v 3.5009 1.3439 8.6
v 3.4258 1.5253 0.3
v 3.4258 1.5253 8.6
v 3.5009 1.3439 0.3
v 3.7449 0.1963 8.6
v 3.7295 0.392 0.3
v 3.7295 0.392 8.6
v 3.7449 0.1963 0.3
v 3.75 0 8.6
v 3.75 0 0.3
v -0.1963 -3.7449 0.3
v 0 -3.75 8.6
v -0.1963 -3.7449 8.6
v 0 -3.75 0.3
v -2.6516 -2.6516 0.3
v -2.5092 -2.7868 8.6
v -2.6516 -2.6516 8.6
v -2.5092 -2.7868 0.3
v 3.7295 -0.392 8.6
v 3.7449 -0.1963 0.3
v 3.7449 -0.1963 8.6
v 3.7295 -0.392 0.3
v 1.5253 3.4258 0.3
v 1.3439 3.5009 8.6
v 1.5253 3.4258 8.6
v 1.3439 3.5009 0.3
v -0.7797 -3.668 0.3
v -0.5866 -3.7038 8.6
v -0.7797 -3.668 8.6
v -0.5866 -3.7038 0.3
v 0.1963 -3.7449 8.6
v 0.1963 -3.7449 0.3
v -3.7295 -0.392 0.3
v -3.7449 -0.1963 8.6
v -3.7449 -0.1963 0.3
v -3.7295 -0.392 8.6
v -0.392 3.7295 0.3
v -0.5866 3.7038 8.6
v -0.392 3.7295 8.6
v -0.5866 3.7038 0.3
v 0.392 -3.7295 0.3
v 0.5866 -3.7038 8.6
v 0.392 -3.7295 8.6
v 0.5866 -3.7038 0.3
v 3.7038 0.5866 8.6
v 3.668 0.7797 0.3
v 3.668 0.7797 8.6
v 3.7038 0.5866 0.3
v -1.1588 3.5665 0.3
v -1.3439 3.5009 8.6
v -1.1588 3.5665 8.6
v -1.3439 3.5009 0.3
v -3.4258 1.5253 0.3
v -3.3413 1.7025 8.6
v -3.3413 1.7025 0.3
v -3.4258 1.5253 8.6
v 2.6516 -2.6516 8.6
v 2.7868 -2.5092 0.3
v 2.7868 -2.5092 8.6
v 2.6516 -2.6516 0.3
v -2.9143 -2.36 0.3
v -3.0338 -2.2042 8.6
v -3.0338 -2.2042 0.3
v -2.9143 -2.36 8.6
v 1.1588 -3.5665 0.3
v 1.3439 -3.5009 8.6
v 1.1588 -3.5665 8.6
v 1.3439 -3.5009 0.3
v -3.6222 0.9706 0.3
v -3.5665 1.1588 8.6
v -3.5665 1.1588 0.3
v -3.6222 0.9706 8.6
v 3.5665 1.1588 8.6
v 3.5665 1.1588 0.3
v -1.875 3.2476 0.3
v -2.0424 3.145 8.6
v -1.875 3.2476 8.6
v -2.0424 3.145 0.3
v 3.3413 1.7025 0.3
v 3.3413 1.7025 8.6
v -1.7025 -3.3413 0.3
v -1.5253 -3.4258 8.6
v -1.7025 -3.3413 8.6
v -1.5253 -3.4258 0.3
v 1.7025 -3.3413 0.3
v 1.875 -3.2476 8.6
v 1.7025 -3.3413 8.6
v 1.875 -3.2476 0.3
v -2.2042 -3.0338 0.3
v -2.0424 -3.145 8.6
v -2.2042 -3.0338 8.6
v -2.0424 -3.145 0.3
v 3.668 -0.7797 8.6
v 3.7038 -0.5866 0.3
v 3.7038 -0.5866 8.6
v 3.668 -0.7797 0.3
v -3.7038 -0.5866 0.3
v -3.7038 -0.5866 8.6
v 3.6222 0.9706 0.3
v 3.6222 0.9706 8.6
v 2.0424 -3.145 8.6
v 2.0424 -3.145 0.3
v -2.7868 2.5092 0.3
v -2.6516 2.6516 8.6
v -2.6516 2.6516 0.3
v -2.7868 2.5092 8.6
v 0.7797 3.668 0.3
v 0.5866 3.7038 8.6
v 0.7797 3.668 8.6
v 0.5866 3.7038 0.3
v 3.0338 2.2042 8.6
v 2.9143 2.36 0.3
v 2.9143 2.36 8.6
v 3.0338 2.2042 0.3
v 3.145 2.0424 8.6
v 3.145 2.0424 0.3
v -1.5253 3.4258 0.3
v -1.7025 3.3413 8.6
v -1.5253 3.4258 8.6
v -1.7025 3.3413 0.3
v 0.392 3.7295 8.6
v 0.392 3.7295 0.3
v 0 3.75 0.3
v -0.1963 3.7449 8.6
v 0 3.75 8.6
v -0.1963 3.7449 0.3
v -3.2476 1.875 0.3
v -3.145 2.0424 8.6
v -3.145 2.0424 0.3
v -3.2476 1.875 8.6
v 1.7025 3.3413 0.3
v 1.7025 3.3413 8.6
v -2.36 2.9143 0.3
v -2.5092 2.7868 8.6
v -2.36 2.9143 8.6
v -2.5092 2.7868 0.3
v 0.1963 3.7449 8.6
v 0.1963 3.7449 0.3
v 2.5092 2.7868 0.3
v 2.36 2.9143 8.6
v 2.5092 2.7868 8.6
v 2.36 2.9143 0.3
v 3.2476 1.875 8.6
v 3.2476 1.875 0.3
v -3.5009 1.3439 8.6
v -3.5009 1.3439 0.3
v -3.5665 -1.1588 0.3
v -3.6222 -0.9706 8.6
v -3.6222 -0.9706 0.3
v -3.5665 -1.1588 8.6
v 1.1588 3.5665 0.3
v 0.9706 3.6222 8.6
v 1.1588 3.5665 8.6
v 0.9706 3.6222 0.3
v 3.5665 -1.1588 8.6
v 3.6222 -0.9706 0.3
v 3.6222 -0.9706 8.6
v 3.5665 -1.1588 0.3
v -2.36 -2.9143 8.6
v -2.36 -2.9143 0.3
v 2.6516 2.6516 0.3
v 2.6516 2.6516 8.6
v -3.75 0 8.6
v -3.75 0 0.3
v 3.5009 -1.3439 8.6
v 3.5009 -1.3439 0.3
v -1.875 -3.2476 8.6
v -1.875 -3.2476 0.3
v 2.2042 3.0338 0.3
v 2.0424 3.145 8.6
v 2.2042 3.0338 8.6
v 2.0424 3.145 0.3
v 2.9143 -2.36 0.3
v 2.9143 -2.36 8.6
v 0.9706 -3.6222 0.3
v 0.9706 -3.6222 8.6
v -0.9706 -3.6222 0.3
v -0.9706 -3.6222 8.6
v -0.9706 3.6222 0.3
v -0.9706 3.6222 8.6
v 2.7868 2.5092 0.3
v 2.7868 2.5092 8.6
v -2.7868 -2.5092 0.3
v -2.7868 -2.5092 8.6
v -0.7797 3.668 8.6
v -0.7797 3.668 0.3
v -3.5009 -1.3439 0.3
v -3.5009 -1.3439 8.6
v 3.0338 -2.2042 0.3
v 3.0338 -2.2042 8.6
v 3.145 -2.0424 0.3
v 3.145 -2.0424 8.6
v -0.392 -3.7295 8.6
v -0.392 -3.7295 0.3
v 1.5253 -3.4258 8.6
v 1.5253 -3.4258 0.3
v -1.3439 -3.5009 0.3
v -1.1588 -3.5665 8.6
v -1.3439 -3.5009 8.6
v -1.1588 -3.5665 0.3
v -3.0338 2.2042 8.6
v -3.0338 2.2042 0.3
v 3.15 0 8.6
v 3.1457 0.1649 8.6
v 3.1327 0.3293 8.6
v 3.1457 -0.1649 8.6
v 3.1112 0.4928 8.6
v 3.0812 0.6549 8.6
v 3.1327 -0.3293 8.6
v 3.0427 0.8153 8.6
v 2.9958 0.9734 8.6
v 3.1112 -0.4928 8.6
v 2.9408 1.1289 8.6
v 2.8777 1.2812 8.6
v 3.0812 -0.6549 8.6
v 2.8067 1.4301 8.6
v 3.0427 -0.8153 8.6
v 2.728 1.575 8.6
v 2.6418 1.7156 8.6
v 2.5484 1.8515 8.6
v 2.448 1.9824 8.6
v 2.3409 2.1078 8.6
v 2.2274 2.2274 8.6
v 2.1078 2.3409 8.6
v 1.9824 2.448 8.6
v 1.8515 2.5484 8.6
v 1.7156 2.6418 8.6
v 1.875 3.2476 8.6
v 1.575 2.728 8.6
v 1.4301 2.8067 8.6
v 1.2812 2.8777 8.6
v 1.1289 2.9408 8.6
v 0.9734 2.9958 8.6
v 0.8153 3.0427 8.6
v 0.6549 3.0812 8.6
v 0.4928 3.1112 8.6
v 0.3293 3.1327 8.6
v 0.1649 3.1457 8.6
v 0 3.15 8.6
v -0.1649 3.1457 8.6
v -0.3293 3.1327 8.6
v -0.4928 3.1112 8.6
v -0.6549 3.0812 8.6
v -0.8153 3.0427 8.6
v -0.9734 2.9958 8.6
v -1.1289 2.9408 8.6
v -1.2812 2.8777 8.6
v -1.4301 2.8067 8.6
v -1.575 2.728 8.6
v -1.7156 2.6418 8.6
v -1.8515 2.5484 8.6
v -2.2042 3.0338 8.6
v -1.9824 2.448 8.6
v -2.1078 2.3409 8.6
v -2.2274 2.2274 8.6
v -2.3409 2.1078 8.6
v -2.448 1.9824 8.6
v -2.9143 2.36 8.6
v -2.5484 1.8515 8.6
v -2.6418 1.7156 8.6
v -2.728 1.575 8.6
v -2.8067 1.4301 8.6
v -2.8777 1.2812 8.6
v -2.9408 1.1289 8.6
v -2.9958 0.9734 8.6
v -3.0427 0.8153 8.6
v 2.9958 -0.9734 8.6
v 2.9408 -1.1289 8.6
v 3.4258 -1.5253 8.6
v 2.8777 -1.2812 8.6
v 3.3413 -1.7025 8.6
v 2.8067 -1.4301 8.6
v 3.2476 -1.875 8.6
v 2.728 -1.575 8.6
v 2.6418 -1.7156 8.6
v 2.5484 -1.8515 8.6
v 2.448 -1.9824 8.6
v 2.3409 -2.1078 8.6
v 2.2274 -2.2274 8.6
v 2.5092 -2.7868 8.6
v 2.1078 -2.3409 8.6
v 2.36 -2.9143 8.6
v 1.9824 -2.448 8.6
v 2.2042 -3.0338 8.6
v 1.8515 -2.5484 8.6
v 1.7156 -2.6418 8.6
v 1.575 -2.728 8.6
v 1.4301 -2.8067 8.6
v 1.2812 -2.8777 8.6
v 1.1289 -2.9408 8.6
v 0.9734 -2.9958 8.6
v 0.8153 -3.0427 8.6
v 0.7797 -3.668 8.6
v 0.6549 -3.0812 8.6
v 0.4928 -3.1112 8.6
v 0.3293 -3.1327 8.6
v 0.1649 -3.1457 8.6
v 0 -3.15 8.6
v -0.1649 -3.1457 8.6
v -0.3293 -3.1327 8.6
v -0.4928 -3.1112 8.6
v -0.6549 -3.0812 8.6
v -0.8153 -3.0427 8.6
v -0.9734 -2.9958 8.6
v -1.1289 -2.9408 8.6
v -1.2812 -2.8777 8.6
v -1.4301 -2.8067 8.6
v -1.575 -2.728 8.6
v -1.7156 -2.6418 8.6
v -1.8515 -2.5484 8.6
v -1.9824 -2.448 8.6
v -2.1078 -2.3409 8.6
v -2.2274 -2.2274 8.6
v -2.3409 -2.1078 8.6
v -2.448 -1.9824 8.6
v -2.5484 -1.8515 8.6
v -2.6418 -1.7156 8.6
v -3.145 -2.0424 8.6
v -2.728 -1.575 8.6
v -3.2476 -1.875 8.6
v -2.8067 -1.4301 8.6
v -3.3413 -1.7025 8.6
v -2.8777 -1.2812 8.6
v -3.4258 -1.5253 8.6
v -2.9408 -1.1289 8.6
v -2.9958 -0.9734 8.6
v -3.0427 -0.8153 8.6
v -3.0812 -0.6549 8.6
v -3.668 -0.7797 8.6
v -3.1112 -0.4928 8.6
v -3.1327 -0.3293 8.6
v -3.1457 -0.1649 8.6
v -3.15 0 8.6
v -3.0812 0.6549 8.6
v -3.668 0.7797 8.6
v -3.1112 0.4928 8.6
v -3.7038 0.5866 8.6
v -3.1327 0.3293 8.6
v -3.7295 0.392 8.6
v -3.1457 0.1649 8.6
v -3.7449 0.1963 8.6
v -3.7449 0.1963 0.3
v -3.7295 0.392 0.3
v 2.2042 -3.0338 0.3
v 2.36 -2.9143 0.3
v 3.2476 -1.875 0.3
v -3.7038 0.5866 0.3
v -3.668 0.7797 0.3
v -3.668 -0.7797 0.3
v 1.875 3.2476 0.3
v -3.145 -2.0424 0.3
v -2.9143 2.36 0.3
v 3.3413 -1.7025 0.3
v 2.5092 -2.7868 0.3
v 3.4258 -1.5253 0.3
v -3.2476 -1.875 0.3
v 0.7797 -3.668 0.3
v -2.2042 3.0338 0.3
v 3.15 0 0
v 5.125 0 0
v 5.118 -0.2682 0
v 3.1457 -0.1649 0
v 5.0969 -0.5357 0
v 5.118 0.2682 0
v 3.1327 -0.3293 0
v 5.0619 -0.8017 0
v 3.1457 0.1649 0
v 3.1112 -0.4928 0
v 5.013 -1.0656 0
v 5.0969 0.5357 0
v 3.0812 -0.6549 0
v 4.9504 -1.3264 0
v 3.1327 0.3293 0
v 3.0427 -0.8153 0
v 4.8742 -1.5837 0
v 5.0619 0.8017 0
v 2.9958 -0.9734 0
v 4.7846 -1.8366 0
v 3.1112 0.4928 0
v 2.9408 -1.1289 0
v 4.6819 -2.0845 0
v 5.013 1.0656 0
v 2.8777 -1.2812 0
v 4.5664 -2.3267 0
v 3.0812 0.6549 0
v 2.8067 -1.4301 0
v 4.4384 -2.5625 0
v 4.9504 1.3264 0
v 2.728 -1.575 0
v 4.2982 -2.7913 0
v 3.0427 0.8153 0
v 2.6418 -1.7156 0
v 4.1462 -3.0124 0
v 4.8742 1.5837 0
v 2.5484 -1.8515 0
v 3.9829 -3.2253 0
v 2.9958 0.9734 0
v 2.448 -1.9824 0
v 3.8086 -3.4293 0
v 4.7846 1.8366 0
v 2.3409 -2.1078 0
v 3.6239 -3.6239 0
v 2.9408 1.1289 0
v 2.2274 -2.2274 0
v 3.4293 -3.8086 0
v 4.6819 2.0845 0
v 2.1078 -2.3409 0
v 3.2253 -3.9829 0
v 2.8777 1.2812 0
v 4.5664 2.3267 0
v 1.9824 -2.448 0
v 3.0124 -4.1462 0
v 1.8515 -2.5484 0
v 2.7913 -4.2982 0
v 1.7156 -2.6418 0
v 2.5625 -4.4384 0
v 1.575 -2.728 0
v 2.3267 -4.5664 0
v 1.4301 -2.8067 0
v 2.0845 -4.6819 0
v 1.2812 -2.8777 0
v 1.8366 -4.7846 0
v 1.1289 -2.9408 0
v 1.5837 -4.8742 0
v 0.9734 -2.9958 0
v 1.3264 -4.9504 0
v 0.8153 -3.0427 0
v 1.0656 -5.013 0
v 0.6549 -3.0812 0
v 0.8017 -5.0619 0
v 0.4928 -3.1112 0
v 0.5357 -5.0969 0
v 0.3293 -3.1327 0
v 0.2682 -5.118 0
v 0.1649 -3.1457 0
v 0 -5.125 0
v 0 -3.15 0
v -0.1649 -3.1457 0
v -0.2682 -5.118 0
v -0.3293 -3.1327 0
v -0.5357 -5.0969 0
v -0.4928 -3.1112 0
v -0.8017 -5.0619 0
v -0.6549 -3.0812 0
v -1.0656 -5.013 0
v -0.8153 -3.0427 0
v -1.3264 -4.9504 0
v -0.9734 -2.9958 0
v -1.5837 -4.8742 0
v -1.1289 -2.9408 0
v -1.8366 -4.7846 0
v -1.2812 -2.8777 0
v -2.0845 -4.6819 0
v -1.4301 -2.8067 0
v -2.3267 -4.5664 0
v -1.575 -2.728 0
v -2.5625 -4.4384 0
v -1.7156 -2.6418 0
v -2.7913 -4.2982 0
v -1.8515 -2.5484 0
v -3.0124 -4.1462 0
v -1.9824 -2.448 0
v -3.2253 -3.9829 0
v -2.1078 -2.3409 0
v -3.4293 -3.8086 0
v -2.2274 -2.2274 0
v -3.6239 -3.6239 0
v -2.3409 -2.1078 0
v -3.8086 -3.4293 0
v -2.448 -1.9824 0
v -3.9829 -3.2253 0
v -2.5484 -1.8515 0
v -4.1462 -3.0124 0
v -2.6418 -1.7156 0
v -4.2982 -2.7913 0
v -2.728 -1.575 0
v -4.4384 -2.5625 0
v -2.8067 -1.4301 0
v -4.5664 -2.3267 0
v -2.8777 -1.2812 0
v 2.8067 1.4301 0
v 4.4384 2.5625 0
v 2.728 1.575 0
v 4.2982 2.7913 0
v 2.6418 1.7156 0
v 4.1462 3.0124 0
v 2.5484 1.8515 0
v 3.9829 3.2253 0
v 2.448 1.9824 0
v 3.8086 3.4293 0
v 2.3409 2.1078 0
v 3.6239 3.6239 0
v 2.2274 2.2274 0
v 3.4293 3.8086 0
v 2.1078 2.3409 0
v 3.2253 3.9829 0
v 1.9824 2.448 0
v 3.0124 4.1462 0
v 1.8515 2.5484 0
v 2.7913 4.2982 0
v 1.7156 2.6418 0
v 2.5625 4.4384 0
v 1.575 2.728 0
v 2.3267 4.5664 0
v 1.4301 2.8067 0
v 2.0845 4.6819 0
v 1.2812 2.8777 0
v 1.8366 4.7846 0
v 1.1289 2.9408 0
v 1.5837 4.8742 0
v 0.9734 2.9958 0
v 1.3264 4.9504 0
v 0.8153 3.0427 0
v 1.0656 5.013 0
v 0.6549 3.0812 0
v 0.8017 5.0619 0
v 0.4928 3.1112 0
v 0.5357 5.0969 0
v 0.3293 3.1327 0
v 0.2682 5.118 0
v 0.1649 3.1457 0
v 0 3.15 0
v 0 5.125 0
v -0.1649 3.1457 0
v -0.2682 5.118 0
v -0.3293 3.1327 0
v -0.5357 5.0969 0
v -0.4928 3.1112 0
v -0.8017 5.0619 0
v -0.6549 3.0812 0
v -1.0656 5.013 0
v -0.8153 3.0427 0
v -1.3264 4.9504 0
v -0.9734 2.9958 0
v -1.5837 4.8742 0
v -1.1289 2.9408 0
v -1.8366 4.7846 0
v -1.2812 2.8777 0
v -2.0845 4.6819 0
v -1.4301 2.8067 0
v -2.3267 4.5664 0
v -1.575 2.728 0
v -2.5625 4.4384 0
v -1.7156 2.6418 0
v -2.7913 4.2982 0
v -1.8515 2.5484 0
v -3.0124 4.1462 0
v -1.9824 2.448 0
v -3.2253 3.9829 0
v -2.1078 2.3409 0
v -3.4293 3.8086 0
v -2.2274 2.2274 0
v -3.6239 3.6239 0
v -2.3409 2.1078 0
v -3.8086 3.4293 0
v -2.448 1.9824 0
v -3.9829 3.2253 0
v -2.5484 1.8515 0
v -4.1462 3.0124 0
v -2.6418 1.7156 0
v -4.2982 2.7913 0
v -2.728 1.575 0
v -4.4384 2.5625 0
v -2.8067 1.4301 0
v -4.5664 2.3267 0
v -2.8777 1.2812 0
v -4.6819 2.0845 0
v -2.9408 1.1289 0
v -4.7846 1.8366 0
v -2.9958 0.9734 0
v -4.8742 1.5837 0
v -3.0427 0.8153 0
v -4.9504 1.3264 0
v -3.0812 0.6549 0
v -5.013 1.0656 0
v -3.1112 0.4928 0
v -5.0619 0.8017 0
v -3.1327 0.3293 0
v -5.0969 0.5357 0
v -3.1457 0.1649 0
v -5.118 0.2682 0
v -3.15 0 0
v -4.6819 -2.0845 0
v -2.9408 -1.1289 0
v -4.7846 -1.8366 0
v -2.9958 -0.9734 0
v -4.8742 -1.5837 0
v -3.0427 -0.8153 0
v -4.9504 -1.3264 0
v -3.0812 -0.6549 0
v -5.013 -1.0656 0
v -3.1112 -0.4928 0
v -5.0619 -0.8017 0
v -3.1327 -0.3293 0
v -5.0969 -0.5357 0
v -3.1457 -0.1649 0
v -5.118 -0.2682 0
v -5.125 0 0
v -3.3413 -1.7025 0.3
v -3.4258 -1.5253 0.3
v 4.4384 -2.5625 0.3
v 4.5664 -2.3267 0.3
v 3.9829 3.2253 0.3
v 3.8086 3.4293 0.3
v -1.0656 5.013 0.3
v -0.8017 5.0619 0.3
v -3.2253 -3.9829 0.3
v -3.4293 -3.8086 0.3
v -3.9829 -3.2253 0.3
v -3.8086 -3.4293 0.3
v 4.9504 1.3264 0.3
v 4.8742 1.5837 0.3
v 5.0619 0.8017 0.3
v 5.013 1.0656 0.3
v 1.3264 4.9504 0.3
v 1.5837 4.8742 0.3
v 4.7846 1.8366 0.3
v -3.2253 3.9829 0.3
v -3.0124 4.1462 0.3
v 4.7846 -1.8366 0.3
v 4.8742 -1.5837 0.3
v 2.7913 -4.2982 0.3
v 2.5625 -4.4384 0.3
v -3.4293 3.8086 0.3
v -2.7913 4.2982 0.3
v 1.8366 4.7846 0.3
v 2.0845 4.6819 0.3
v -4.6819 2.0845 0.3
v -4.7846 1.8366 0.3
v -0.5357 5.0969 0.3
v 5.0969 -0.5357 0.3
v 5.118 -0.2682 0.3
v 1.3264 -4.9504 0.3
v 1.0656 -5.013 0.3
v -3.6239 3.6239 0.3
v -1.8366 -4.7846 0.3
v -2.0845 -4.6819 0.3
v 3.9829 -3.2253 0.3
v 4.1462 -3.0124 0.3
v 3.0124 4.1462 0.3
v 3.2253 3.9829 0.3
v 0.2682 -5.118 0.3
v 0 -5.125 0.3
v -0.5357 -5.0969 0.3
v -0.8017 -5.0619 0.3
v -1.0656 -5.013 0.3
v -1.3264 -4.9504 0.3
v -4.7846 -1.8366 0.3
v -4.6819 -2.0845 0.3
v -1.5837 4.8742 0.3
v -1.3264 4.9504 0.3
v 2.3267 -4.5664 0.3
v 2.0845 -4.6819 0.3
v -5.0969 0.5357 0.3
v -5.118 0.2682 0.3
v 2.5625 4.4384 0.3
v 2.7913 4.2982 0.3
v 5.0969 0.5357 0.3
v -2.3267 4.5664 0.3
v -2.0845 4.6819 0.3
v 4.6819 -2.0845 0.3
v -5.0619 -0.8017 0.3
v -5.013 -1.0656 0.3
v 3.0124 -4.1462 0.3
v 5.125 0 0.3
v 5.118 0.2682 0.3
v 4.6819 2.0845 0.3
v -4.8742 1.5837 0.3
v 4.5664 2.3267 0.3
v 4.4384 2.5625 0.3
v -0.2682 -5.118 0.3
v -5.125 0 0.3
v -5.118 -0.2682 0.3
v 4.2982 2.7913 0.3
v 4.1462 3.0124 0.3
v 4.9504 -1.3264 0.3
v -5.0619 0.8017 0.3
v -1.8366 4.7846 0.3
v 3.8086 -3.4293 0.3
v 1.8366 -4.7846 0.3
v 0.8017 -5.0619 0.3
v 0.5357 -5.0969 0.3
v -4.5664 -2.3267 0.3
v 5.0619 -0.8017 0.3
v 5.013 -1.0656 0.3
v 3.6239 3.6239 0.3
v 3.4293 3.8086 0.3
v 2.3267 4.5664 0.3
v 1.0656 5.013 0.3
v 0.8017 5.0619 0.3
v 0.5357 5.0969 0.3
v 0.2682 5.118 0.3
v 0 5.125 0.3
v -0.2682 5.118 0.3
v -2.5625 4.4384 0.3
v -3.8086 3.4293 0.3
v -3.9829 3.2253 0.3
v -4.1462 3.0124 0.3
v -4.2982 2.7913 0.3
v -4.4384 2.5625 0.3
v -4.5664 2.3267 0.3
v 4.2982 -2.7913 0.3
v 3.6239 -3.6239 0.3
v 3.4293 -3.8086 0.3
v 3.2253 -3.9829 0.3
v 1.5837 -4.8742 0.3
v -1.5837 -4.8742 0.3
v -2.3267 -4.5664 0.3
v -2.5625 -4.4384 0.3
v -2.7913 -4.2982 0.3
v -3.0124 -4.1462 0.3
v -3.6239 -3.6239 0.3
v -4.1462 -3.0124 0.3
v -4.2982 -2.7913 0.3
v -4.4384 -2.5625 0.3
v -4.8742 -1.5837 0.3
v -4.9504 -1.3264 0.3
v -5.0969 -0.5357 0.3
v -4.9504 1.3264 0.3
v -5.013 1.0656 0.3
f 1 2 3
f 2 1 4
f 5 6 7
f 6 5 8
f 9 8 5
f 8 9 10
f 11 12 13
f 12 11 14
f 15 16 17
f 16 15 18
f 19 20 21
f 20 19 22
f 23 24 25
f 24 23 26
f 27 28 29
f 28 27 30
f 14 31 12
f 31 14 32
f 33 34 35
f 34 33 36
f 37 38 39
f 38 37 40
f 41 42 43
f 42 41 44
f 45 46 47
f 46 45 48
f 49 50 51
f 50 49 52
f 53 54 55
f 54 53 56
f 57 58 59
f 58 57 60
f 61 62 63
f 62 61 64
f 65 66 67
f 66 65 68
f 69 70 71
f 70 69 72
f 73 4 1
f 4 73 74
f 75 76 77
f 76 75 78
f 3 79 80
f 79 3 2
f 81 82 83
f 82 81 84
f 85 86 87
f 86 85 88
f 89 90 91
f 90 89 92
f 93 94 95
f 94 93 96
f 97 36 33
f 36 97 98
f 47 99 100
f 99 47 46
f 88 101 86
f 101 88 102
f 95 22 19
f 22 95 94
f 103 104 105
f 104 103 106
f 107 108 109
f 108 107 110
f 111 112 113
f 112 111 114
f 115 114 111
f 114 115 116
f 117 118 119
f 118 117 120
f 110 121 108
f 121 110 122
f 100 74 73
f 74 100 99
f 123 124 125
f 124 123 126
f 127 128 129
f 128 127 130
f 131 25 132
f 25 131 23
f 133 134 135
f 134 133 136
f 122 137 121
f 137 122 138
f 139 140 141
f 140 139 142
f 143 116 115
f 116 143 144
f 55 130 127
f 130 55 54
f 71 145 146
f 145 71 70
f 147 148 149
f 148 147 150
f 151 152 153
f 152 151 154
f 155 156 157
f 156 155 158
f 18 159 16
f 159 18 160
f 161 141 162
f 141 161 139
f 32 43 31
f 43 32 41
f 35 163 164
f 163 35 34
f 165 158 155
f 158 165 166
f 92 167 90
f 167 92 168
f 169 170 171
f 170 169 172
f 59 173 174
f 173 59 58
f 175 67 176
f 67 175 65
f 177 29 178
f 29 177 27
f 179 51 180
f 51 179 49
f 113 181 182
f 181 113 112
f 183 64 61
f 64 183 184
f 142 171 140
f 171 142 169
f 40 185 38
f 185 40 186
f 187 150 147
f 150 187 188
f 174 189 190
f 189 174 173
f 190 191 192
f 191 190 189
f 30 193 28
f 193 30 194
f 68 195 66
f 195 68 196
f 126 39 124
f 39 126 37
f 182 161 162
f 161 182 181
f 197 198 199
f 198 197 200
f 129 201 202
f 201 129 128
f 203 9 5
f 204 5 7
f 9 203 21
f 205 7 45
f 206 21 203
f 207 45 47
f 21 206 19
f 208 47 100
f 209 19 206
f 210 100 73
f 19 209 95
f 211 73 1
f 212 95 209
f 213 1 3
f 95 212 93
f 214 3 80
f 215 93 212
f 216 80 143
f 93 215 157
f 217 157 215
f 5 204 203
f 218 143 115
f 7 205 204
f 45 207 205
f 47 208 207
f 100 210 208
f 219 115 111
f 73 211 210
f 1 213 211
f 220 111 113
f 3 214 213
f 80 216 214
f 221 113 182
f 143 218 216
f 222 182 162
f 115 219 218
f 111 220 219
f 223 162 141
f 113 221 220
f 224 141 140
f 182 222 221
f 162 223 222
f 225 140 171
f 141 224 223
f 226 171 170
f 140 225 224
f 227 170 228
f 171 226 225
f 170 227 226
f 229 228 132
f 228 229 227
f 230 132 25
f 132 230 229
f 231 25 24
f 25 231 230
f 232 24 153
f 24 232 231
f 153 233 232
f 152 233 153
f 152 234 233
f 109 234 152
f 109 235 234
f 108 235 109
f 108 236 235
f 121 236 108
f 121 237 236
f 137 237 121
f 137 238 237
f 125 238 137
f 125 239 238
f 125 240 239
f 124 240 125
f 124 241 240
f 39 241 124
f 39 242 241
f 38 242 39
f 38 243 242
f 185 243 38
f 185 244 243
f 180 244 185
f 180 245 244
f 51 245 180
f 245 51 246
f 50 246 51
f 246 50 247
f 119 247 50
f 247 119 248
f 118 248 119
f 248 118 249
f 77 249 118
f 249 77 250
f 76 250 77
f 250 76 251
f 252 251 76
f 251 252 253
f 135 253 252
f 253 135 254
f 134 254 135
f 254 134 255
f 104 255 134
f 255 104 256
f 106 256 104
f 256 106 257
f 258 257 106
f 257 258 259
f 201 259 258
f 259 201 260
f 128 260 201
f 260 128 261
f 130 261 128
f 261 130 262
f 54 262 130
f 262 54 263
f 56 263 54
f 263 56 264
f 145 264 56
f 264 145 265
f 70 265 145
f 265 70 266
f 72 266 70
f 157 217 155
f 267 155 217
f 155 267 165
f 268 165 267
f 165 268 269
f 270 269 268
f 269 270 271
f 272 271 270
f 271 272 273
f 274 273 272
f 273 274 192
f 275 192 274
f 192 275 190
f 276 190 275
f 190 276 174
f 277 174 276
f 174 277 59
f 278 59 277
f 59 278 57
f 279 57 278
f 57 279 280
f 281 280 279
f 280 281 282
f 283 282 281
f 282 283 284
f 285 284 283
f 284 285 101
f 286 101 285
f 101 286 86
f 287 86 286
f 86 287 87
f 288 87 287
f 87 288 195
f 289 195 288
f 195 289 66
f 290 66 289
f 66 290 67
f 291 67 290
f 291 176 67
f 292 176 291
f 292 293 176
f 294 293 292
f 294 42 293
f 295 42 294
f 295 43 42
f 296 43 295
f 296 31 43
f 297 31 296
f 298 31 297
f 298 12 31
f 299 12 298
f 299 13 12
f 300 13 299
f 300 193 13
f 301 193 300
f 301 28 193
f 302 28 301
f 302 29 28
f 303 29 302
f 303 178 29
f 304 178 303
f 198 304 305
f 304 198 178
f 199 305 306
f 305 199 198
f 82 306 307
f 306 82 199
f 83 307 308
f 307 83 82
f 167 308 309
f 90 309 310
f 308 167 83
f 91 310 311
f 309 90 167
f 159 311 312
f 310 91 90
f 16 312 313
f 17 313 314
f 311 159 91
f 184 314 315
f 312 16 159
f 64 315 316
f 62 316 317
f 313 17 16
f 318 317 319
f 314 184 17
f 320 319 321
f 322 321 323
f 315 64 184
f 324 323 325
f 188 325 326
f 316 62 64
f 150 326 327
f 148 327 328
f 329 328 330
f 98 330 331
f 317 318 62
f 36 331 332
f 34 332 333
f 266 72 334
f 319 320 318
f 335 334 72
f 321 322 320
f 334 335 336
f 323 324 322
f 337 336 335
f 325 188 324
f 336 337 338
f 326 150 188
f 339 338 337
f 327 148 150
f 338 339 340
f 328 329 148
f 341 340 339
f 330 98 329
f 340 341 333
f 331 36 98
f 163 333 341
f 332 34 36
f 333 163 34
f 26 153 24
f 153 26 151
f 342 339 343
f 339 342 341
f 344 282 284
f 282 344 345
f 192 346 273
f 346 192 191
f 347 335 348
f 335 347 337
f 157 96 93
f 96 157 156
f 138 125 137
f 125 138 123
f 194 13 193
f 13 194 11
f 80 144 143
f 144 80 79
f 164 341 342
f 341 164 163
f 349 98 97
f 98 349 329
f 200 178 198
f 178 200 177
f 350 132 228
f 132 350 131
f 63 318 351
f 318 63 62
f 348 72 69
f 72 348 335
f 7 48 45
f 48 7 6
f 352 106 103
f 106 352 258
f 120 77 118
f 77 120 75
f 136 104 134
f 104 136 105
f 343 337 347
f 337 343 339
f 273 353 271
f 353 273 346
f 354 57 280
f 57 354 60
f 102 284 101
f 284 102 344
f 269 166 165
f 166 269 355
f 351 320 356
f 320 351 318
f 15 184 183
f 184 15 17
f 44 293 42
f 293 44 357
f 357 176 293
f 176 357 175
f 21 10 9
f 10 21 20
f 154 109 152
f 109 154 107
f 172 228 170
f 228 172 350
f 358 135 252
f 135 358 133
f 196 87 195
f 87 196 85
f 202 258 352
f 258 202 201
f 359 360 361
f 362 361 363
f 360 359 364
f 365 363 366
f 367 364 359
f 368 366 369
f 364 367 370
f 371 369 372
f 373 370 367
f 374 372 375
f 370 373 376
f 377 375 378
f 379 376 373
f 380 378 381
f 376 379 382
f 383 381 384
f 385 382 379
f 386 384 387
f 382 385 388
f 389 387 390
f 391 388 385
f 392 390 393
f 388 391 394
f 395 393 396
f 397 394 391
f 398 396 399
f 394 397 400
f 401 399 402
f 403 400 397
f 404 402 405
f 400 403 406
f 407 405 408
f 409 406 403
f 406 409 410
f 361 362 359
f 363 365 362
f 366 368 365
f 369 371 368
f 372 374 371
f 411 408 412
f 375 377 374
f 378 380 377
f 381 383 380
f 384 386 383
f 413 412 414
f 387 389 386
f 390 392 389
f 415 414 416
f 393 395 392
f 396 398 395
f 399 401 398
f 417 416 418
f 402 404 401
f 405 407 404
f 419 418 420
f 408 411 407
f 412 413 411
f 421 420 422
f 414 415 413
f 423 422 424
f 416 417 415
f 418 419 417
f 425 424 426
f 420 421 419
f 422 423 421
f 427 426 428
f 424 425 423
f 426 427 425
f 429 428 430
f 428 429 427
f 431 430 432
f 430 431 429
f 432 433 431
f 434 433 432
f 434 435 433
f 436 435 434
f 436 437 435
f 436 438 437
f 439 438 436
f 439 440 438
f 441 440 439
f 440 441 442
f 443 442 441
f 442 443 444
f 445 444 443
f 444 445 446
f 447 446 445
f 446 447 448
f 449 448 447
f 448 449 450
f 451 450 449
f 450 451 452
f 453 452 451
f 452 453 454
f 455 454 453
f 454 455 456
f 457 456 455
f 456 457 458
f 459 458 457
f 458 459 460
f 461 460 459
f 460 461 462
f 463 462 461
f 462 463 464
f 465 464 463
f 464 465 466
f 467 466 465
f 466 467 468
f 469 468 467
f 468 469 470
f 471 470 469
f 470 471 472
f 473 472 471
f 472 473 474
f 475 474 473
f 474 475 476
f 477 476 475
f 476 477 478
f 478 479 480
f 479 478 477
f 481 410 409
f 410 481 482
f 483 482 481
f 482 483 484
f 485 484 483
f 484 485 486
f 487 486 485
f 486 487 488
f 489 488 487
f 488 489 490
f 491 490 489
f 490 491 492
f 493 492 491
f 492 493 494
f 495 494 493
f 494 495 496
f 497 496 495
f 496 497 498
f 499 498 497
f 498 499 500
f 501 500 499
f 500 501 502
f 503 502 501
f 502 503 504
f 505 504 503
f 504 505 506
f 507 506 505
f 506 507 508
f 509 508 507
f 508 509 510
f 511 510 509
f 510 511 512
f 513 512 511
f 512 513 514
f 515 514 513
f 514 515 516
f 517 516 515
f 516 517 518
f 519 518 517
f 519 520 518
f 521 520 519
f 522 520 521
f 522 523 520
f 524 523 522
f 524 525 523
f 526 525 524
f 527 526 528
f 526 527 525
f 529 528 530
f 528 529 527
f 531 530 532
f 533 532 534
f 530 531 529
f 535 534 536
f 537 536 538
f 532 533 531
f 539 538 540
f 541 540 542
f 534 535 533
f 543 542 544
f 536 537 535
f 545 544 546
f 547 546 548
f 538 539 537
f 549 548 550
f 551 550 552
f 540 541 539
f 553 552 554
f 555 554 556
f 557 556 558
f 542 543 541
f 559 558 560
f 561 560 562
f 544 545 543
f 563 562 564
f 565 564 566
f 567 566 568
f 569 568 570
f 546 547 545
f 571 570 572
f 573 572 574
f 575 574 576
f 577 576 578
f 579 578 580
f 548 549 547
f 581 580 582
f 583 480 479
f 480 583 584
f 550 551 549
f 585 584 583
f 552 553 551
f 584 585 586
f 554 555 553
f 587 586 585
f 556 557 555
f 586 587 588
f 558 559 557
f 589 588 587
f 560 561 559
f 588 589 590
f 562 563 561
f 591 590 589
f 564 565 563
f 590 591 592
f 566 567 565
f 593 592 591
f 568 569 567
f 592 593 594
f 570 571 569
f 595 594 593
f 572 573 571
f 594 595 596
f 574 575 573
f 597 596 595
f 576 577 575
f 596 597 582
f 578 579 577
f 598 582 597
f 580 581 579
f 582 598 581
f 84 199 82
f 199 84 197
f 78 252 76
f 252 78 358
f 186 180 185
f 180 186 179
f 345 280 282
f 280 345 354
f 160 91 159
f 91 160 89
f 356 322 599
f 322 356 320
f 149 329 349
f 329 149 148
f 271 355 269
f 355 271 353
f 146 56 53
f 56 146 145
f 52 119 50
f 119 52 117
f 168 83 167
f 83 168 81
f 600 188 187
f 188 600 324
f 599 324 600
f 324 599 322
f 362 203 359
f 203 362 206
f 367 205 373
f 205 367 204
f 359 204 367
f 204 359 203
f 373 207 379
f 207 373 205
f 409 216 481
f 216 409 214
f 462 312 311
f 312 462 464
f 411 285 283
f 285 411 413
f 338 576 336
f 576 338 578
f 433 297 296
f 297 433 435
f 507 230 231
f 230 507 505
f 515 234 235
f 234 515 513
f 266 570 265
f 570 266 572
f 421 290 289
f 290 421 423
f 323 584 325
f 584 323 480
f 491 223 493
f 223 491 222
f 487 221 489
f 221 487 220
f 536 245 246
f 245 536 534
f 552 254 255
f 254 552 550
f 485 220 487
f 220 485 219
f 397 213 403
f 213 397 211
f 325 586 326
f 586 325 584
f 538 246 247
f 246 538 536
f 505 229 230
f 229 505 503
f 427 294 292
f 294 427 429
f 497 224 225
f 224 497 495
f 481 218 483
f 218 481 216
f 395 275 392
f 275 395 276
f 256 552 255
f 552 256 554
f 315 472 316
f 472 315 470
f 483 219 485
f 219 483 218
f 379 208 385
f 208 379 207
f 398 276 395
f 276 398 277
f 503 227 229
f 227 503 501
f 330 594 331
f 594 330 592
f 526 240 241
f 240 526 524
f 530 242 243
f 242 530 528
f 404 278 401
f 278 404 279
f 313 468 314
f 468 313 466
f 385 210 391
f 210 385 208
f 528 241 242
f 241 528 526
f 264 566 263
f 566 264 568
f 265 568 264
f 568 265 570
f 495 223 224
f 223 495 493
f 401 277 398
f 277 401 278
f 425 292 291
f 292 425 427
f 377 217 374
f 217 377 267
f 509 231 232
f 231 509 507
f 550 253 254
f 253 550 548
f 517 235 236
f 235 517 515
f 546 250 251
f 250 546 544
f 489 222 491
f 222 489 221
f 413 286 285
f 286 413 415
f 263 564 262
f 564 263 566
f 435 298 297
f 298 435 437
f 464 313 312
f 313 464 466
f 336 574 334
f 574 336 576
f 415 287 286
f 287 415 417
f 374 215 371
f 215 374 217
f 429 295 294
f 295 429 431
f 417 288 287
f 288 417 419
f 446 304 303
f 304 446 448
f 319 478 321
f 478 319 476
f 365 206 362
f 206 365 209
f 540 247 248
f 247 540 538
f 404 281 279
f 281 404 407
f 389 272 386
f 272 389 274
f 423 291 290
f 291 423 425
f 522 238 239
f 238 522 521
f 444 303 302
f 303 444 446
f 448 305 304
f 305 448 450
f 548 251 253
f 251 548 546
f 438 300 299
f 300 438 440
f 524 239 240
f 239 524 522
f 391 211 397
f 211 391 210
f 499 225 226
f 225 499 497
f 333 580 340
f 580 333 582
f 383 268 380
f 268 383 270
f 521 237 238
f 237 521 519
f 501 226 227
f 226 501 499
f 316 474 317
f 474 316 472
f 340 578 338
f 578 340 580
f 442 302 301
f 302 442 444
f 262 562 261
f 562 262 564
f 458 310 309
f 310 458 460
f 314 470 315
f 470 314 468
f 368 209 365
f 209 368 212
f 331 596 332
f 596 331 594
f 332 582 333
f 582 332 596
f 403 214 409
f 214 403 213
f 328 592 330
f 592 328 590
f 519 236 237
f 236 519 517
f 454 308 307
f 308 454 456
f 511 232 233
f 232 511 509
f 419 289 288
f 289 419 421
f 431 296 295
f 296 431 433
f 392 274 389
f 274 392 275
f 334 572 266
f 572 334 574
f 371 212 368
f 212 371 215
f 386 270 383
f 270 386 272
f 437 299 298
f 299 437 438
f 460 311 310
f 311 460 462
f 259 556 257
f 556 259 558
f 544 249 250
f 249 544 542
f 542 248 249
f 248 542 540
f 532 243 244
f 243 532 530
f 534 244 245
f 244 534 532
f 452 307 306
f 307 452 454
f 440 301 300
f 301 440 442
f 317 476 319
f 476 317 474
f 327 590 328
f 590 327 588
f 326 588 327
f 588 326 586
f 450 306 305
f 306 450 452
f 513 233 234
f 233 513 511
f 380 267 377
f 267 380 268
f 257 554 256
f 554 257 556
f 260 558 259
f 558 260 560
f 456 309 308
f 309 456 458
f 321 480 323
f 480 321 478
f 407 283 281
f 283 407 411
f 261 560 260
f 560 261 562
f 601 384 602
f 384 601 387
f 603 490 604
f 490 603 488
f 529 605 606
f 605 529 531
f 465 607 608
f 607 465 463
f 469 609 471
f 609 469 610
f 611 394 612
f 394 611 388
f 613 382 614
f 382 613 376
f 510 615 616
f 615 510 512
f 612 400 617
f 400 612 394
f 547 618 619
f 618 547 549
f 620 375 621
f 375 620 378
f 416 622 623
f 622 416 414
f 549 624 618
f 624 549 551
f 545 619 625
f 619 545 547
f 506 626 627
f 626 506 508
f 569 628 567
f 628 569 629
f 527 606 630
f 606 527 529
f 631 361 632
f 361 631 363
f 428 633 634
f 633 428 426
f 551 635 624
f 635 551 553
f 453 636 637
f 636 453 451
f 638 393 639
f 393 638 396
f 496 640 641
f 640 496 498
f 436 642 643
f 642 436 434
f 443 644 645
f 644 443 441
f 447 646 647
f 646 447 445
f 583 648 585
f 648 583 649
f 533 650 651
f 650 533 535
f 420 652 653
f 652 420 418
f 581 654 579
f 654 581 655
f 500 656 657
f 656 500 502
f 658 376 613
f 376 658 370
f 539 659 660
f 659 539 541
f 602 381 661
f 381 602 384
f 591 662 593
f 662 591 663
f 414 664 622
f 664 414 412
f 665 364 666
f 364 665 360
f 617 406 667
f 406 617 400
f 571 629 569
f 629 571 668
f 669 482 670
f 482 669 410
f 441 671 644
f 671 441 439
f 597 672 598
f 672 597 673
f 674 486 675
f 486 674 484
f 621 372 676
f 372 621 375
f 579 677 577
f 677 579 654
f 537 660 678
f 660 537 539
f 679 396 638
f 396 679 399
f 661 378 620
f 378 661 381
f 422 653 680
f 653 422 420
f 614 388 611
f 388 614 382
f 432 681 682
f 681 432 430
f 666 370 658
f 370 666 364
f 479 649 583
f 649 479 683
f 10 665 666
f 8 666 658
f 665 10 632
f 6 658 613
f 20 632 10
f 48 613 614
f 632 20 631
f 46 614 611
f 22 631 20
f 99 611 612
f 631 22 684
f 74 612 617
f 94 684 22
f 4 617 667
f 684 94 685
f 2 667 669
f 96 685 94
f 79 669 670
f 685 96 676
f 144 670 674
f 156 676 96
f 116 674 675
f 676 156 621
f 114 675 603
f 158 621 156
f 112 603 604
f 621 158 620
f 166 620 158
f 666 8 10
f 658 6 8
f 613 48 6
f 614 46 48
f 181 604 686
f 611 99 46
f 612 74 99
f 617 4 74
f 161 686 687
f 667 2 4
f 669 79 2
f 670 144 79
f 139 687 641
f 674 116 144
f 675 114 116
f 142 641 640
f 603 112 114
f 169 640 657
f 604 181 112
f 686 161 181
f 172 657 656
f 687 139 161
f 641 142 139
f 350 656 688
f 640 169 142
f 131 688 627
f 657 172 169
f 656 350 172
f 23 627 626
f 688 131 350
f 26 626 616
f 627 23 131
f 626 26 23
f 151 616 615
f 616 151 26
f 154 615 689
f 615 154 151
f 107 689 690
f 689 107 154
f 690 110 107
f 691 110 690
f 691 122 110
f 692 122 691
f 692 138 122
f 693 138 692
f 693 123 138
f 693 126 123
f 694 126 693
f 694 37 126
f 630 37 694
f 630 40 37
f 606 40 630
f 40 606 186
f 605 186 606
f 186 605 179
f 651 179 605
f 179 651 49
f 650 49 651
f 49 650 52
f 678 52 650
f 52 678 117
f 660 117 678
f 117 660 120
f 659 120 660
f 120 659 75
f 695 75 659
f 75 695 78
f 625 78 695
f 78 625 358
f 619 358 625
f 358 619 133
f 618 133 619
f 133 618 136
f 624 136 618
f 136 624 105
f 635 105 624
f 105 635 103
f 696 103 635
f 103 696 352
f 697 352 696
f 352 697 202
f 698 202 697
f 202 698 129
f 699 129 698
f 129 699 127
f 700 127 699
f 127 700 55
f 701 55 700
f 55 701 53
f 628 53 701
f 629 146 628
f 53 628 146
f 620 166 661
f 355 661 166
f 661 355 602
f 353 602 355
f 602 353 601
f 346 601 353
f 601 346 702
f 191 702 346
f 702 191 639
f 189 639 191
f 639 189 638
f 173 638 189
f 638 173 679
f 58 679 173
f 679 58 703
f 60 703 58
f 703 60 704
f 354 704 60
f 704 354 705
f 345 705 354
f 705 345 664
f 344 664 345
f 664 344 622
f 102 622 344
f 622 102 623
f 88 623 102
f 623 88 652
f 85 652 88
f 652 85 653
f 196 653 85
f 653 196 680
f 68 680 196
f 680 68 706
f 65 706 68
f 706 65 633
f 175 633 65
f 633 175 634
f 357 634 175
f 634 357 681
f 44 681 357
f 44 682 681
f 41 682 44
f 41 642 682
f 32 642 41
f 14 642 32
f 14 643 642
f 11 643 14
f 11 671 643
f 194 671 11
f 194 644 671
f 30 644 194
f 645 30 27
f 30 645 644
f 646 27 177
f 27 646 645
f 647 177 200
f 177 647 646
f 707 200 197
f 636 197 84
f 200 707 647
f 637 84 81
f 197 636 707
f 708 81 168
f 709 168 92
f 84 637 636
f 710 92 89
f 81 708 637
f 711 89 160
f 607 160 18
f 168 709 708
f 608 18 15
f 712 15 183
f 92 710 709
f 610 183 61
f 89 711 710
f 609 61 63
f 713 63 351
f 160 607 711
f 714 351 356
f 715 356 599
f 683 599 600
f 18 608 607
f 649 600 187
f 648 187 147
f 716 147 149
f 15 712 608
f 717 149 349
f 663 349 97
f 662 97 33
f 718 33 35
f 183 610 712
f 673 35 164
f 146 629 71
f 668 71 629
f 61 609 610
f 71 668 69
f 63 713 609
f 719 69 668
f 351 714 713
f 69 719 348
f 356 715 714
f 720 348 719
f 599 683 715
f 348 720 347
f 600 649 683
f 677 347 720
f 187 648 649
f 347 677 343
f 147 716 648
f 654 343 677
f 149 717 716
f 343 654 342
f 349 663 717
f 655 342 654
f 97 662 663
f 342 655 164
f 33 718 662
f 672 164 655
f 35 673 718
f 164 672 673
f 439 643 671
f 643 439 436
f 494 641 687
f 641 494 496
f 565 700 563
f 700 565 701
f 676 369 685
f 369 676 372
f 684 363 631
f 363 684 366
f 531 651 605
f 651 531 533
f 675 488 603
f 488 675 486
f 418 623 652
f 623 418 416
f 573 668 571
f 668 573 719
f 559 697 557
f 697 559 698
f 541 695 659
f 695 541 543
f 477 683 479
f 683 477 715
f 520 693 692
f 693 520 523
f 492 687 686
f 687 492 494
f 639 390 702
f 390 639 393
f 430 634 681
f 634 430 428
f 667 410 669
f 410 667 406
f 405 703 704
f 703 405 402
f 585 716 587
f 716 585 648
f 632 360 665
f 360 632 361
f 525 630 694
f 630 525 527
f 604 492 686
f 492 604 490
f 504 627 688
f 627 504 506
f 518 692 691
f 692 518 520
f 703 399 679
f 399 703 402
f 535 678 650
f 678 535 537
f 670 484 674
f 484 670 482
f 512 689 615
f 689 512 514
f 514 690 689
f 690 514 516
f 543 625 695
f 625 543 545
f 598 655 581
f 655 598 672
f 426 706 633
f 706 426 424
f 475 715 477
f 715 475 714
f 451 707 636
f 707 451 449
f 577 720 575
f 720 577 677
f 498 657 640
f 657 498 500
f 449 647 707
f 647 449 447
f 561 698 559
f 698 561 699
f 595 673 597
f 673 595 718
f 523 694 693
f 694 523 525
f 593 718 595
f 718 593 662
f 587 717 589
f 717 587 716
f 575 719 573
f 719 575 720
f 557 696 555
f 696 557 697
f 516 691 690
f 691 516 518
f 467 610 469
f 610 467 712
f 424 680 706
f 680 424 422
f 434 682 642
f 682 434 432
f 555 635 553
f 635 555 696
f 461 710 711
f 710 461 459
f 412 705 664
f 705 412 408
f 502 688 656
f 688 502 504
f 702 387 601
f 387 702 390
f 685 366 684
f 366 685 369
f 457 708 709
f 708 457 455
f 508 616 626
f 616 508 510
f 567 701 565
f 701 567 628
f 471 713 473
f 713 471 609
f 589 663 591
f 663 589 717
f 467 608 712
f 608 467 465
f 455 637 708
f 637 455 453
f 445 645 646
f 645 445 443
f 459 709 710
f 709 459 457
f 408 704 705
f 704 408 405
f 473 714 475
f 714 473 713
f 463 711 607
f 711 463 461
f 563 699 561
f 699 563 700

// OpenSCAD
$fn=120;
height=8.6; // Desired overall height
inner_width=7.5; // Inner tube 
outer_width=10.25; // Together with expansion at the top
sticking_out=0.30;
thickness=1.8; // lip


inner_radius=inner_width/2;
inner_cutout=inner_radius-(thickness/3);

outer_radius=outer_width/2;
outer_cutout=outer_radius-(thickness);

union(){
    union(){
        difference(){
            translate ([0,0,0]) cylinder (r=inner_radius,h=height);
            translate ([0,0,0-0.01]) cylinder (r=inner_cutout,h=height+.02);
        }
    }


    // top
    difference(){
        translate ([0,0,0]) cylinder (r=outer_radius,h=sticking_out);
        translate ([0,0,0-0.01]) cylinder (r=outer_cutout,h=sticking_out+0.02);
    }
}
